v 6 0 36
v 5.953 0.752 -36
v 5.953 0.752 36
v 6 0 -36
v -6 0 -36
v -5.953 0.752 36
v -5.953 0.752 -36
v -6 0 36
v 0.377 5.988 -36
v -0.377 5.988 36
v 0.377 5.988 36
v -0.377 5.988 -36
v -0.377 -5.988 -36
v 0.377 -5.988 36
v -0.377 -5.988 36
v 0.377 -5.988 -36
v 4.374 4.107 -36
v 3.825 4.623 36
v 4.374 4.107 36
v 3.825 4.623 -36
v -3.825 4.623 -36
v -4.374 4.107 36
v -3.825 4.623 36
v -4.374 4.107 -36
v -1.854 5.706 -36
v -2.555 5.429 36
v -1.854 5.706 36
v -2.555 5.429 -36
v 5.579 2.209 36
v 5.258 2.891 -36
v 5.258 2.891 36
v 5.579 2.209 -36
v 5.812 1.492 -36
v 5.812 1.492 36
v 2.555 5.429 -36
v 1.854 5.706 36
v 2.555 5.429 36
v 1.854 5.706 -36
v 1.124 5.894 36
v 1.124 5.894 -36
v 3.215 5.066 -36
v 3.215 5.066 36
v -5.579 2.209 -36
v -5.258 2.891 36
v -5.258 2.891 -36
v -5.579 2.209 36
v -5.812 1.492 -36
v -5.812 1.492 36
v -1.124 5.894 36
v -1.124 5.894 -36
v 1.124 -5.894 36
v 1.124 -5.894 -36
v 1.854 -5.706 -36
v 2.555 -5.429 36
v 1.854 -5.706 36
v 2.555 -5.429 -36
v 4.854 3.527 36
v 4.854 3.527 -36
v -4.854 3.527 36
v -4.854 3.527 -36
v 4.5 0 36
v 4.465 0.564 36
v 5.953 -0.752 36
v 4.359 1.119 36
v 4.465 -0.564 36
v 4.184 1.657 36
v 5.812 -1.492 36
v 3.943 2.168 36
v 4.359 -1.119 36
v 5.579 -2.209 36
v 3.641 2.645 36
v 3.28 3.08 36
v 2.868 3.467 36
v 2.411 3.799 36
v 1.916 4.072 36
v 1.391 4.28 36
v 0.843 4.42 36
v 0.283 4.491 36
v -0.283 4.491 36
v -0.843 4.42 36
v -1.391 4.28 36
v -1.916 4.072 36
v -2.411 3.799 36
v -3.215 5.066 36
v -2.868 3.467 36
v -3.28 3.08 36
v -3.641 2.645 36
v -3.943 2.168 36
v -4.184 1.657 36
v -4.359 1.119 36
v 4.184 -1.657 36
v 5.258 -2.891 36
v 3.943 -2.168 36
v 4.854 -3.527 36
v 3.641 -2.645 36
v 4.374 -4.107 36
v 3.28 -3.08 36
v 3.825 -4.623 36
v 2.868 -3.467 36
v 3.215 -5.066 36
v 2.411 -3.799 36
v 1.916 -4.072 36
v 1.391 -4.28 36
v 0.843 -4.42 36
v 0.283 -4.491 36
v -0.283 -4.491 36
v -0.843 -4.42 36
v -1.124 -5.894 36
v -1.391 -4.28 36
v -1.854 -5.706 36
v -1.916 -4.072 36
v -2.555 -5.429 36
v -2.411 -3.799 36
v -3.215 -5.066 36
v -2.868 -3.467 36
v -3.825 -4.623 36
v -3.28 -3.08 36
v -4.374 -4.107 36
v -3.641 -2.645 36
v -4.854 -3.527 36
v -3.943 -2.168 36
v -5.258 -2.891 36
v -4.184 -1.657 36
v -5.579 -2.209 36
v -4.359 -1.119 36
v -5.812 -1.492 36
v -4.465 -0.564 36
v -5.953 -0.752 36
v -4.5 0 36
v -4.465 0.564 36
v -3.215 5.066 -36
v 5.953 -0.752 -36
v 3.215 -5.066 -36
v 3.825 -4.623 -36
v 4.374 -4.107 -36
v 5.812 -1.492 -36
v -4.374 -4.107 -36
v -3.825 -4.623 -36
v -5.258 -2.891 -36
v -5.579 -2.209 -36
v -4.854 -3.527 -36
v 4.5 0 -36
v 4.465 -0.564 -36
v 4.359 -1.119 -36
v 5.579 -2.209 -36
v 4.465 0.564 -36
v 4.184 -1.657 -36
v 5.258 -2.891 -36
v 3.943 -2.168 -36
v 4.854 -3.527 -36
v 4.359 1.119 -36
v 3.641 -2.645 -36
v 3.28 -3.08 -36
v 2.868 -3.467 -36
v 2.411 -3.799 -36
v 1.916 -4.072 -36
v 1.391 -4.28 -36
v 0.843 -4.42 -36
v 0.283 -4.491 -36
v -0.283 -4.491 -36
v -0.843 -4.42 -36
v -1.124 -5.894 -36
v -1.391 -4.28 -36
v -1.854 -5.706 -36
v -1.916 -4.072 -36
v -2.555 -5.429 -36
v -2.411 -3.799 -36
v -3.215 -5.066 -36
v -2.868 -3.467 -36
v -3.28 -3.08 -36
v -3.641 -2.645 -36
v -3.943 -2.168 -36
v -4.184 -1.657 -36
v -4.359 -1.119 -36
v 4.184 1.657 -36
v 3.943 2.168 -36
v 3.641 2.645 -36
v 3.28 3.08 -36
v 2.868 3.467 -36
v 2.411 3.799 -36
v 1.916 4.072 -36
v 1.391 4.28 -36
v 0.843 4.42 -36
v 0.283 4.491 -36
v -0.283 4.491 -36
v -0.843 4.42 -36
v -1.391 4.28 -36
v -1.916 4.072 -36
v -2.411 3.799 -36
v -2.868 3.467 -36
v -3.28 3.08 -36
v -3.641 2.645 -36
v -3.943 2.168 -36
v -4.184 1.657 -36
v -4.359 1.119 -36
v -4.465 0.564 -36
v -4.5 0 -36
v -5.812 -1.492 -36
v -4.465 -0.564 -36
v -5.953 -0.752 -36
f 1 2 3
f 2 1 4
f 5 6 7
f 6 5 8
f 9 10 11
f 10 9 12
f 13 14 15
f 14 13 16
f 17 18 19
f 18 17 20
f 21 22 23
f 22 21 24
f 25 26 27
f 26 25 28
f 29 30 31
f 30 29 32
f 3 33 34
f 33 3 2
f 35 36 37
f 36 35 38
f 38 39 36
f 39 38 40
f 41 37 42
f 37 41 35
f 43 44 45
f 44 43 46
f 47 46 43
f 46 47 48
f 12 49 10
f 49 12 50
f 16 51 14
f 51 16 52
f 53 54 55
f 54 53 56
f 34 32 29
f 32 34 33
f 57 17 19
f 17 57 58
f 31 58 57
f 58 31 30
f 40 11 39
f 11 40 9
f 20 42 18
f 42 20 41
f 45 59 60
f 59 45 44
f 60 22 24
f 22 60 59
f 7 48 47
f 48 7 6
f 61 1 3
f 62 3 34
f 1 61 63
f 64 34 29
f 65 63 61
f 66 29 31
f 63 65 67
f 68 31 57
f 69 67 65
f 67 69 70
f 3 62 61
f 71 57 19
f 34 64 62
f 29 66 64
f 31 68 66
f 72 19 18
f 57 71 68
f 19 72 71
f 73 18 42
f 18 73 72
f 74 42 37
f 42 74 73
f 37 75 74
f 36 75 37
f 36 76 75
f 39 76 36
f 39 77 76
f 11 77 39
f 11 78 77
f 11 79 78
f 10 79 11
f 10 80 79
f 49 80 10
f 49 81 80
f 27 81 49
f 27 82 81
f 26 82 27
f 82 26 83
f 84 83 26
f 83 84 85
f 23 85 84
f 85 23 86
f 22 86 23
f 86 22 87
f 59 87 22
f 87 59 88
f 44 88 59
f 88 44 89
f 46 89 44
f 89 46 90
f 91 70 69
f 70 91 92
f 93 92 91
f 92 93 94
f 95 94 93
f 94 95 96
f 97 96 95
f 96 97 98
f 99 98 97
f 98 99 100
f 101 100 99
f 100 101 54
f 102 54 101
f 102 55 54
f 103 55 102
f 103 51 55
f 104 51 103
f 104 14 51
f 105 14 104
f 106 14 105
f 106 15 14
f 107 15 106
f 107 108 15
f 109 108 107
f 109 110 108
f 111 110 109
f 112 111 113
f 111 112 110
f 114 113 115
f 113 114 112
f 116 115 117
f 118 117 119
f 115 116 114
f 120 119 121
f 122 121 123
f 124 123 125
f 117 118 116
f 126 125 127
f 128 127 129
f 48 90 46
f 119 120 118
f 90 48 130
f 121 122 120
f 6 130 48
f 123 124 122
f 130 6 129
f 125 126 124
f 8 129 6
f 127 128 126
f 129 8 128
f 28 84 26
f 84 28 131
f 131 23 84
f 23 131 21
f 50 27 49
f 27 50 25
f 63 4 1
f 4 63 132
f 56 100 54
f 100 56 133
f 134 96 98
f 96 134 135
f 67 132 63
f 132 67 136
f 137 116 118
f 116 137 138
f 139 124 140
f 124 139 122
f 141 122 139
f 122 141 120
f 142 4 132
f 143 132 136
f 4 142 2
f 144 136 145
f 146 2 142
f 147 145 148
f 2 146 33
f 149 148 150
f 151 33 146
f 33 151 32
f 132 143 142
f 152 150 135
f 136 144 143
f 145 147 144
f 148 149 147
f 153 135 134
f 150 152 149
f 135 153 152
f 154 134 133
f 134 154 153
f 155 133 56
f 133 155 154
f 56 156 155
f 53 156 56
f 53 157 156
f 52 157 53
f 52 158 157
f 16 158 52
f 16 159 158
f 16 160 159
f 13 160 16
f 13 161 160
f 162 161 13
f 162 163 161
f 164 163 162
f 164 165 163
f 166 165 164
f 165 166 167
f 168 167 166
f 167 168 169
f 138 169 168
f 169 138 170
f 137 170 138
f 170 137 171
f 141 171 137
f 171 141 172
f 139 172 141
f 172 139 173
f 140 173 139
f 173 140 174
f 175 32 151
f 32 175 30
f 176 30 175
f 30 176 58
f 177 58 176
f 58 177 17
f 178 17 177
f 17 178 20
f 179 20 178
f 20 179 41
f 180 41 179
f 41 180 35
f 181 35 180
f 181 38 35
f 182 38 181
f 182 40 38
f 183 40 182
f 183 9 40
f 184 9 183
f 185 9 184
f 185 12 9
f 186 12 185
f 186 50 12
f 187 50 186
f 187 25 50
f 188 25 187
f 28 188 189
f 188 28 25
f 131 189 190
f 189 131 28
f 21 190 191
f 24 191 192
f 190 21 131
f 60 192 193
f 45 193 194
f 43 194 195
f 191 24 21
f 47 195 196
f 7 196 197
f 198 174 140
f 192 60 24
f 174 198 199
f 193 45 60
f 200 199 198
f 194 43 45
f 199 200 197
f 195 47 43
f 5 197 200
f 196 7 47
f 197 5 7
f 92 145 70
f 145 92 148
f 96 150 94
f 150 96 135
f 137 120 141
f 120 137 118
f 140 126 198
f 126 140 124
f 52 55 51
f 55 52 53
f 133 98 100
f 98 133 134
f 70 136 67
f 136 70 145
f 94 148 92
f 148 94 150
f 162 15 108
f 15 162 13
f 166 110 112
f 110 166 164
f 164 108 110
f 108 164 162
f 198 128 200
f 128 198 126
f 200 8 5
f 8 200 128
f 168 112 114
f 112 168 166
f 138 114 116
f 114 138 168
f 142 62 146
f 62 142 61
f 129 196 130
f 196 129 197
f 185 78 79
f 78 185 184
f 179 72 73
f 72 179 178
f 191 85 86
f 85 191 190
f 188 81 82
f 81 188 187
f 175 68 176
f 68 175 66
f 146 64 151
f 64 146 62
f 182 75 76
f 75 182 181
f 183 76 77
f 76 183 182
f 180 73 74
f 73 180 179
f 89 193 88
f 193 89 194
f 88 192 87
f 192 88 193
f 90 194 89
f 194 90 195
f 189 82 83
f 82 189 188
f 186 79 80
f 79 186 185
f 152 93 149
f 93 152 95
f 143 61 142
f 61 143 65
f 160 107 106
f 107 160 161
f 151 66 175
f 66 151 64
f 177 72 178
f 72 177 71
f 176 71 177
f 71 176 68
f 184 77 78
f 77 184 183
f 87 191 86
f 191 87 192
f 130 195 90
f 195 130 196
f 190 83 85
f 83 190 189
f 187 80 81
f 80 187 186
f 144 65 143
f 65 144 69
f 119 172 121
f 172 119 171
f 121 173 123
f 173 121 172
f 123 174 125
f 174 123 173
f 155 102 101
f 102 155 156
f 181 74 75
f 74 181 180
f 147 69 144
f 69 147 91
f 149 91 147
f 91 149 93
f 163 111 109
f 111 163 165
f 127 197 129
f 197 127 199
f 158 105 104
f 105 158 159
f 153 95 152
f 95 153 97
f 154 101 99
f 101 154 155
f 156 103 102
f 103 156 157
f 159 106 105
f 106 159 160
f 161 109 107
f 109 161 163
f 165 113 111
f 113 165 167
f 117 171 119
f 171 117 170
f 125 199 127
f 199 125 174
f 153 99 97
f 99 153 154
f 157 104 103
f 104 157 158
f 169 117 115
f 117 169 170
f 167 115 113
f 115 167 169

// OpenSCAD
$fn = 50;


difference() {
	union() {
		translate(v = [0, 0, -36.0000000000]) {
			cylinder(h = 72, r = 6.0000000000);
		}
	}
	union() {
		translate(v = [0, 0, -100.0000000000]) {
			cylinder(h = 200, r = 4.5000000000);
		}
	}
}
